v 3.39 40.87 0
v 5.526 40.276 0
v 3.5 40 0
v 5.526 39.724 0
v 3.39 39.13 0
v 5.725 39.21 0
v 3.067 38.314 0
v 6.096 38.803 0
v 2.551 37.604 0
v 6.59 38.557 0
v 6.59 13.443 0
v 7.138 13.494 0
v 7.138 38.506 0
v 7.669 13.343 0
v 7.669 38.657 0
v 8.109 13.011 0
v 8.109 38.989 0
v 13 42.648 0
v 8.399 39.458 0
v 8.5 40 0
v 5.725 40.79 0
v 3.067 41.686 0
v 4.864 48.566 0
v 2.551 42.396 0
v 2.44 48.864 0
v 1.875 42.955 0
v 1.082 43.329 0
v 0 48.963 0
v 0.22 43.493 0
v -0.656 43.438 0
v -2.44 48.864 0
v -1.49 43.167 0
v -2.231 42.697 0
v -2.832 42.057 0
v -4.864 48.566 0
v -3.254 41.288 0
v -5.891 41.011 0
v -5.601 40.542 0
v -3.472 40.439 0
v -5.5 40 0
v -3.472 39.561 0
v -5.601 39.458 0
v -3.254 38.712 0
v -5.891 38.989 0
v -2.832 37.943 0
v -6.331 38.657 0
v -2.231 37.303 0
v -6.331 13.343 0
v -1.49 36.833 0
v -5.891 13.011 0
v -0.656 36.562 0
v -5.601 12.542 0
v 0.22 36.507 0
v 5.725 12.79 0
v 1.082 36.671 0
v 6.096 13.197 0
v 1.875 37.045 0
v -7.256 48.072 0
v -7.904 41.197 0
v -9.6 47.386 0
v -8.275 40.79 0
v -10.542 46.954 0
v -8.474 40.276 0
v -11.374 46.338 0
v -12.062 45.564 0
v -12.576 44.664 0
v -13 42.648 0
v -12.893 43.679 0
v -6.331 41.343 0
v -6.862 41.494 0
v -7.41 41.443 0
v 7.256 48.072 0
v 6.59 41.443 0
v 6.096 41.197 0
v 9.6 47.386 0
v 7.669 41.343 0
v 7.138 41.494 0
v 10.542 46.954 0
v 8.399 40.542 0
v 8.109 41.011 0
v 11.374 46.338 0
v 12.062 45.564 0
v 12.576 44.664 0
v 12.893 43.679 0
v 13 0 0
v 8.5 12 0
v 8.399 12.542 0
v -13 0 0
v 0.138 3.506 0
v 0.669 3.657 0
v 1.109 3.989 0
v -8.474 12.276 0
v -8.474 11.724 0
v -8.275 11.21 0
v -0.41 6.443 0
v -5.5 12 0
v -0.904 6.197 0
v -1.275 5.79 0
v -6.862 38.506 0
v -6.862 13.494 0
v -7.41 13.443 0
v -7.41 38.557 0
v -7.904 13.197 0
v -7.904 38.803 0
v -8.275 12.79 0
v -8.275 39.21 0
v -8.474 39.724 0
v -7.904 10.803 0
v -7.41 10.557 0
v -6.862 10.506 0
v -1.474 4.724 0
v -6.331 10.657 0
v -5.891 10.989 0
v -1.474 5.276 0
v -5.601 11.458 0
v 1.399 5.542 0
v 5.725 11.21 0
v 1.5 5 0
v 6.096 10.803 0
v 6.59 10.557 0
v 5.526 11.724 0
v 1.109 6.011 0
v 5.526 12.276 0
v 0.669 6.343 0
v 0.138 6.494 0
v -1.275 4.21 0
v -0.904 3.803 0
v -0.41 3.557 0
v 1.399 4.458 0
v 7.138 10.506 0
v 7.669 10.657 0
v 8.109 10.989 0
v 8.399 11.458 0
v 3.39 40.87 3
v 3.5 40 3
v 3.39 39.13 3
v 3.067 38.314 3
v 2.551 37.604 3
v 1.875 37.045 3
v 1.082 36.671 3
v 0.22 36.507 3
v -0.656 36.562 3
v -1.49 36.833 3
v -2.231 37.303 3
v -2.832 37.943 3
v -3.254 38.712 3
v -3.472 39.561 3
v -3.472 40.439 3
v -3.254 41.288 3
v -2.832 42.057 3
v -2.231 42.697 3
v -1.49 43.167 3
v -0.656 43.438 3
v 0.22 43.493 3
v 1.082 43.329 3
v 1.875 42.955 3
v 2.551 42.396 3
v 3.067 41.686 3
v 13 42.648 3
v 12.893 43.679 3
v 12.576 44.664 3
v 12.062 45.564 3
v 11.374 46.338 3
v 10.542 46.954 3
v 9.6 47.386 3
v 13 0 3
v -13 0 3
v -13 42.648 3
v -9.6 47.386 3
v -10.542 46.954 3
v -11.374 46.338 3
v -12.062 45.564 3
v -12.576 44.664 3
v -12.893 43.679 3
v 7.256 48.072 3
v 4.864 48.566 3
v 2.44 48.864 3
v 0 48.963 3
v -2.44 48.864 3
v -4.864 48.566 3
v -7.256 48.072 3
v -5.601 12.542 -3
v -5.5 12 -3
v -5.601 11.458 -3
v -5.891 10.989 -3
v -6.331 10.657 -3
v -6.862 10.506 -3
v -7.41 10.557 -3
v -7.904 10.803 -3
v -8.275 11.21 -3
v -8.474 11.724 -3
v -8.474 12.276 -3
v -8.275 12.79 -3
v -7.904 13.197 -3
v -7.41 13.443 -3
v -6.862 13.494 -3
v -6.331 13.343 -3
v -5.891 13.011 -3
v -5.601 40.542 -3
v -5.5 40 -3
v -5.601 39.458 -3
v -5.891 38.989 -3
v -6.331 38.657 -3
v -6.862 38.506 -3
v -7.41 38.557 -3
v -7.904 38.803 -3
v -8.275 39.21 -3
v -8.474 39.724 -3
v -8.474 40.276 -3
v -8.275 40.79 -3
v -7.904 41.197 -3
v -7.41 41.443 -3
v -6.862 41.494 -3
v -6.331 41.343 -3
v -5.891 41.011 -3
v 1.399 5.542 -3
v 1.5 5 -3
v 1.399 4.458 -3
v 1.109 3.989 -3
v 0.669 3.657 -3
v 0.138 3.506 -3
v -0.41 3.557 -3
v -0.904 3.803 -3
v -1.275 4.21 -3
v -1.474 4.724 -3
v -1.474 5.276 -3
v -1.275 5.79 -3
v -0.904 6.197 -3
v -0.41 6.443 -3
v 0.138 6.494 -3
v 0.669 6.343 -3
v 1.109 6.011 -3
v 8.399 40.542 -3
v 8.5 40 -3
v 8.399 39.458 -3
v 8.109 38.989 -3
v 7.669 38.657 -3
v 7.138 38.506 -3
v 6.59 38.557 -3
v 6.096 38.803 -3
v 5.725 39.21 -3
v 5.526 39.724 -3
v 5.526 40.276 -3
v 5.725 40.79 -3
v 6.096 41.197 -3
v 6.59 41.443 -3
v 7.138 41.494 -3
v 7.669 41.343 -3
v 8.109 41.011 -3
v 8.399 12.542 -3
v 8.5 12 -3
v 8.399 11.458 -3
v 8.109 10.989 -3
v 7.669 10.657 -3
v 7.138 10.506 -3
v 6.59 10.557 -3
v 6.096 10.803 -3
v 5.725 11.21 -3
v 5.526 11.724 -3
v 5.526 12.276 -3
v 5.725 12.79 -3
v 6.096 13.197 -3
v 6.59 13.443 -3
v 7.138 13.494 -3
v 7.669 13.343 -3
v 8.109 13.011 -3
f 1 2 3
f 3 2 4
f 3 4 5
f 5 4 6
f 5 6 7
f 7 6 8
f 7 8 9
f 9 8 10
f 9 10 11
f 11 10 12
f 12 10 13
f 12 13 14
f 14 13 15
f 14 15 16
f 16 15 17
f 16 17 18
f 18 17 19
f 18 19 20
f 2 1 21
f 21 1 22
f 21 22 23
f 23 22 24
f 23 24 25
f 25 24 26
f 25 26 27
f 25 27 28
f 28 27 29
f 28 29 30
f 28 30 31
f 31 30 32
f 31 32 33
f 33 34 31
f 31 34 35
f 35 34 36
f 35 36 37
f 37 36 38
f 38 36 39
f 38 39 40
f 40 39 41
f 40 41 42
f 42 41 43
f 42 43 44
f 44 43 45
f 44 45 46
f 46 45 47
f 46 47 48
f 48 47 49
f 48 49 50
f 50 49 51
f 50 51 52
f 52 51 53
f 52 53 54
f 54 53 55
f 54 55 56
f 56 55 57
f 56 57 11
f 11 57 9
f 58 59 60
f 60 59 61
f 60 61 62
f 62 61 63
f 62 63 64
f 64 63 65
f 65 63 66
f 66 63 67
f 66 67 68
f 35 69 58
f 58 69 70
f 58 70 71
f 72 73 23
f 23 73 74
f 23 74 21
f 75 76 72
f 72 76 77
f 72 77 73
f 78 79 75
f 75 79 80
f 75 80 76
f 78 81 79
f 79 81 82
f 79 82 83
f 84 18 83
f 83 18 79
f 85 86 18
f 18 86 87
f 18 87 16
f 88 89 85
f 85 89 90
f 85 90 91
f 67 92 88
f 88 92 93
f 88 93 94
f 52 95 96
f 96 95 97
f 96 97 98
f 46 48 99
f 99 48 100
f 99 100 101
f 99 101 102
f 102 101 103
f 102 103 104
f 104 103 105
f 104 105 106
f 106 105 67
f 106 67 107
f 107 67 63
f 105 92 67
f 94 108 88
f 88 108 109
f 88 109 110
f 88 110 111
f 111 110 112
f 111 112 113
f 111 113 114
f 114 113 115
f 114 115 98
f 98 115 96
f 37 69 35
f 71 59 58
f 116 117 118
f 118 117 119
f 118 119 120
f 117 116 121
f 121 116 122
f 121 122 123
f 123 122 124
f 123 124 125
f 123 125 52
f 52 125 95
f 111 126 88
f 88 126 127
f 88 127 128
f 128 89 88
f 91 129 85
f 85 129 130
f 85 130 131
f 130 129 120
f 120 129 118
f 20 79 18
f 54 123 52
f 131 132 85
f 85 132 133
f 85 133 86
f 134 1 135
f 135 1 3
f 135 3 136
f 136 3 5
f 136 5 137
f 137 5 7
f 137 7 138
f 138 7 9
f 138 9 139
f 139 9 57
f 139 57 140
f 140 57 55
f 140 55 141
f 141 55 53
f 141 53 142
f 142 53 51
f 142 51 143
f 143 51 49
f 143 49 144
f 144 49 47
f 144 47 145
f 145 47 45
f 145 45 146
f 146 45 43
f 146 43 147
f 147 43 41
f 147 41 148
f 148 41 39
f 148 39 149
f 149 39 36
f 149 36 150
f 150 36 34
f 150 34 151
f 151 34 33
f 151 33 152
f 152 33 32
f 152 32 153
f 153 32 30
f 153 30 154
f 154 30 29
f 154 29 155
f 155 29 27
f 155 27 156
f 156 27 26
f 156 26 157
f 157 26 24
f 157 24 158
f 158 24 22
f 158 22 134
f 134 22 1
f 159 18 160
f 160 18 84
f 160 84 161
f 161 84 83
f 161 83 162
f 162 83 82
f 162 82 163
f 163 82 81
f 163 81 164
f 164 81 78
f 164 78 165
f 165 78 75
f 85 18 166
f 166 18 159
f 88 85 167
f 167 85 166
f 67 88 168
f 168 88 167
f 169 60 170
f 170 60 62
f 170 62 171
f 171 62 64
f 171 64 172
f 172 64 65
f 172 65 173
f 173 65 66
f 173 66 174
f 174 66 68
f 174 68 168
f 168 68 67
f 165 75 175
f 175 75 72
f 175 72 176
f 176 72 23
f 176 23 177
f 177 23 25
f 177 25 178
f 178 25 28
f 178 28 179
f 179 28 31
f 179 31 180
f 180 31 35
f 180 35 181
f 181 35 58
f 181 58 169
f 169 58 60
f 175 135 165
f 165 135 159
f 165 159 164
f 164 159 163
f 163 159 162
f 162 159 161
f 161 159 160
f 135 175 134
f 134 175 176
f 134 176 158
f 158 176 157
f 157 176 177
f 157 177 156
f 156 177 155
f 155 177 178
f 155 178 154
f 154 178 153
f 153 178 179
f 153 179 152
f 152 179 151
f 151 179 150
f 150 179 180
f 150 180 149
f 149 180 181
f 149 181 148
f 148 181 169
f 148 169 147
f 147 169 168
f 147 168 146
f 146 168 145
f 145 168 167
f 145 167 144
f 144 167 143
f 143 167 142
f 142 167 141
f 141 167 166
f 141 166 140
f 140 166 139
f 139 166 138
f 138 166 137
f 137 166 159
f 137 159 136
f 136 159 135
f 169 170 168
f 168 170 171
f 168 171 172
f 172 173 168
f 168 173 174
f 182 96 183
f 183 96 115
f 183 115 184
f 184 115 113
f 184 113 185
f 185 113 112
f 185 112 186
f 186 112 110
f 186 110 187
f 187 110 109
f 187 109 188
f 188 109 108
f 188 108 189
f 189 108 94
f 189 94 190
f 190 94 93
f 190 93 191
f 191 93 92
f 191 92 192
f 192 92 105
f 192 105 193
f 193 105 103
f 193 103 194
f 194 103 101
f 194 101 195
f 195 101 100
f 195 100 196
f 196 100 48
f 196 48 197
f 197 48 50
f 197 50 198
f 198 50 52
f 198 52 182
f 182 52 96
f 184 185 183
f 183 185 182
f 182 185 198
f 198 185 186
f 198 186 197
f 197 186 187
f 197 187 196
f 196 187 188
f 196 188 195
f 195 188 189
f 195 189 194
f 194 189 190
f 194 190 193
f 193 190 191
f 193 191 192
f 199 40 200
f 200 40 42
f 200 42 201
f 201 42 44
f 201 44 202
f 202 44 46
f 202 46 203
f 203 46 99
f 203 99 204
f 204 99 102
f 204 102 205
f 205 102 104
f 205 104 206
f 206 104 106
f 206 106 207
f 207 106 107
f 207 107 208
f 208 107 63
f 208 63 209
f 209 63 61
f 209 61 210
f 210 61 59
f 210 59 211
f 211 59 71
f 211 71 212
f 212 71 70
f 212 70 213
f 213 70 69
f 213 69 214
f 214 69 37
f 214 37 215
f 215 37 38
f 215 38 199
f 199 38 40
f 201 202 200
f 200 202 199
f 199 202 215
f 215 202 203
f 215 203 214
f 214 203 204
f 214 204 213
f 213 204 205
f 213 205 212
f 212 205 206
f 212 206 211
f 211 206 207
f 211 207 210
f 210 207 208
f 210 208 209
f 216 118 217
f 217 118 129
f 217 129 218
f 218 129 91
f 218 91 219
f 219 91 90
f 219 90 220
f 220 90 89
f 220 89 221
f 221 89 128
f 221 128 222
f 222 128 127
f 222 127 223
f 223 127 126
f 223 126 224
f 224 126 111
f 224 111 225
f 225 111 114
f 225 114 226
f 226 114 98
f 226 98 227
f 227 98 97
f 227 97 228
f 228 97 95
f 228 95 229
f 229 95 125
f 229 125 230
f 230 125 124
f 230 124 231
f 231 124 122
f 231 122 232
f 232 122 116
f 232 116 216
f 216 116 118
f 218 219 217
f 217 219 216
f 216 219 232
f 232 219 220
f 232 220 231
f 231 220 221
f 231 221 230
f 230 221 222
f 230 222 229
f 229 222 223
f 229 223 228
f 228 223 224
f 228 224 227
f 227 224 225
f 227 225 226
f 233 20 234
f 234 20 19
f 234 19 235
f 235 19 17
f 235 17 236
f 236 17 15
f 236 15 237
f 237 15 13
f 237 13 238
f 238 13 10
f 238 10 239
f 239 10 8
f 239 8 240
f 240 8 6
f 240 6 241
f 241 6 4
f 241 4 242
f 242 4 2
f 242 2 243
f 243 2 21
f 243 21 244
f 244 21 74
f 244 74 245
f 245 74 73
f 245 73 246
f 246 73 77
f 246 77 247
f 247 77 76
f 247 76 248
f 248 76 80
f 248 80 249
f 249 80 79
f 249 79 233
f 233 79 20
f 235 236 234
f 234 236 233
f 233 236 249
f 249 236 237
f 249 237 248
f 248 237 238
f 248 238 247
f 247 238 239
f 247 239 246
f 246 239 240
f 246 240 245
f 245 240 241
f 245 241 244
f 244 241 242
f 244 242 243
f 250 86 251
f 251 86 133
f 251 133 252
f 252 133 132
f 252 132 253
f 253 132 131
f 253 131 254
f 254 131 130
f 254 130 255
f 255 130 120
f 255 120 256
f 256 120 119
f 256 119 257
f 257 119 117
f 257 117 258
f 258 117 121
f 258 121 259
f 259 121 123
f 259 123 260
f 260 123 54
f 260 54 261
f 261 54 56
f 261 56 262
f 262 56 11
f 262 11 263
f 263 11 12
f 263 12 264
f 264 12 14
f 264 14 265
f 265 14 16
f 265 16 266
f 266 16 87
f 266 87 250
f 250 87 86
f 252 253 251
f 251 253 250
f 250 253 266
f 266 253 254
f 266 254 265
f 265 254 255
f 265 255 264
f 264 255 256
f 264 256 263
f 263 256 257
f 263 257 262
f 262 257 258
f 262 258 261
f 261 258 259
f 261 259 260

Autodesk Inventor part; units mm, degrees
ref_plane "YZ Plane" through (0, 0, 0) normal (1, 0, 0) x (0, 1, 0)
ref_plane "XZ Plane" through (0, 0, 0) normal (0, 1, 0) x (-1, 0, 0)
ref_plane "XY Plane" through (0, 0, 0) normal (0, 0, 1) x (1, 0, 0)
sketch "Эскиз1" plane through (0, 0, 0) normal (0, 0, 1) x (1, 0, 0)
  circle A0 centre (-7, 12) radius 1.5 projected
  circle A1 centre (0, 5) radius 1.5 projected
  circle A2 centre (7, 12) radius 1.5 projected
  circle A3 centre (7, 40) radius 1.5 projected
  circle A4 centre (-7, 40) radius 1.5 projected
  point P0 (0, 0)
extrude "Выдавливание1" add sketch "Эскиз1" against normal blind 3
sketch "Эскиз3" plane through (0, 5, 0) normal (0, 0, 1) x (1, 0, 0)
  line L0 (-13, -5) -> (-13, 37.6484)
  line L1 (13, 37.6484) -> (13, -5)
  line L2 (13, -5) -> (-13, -5)
  circle A0 centre (0, 35) radius 3.5
  arc A1 (13, 37.6484) -> (9.6, 42.3855) centre (8, 37.6484) ccw
  arc A2 (9.6, 42.3855) -> (-9.6, 42.3855) centre (0, 13.963) ccw
  arc A3 (-9.6, 42.3855) -> (-13, 37.6484) centre (-8, 37.6484) ccw
  point P0 (0, -5)
extrude "Выдавливание2" add sketch "Эскиз3" along normal blind 3
properties part number "gasket_2"
